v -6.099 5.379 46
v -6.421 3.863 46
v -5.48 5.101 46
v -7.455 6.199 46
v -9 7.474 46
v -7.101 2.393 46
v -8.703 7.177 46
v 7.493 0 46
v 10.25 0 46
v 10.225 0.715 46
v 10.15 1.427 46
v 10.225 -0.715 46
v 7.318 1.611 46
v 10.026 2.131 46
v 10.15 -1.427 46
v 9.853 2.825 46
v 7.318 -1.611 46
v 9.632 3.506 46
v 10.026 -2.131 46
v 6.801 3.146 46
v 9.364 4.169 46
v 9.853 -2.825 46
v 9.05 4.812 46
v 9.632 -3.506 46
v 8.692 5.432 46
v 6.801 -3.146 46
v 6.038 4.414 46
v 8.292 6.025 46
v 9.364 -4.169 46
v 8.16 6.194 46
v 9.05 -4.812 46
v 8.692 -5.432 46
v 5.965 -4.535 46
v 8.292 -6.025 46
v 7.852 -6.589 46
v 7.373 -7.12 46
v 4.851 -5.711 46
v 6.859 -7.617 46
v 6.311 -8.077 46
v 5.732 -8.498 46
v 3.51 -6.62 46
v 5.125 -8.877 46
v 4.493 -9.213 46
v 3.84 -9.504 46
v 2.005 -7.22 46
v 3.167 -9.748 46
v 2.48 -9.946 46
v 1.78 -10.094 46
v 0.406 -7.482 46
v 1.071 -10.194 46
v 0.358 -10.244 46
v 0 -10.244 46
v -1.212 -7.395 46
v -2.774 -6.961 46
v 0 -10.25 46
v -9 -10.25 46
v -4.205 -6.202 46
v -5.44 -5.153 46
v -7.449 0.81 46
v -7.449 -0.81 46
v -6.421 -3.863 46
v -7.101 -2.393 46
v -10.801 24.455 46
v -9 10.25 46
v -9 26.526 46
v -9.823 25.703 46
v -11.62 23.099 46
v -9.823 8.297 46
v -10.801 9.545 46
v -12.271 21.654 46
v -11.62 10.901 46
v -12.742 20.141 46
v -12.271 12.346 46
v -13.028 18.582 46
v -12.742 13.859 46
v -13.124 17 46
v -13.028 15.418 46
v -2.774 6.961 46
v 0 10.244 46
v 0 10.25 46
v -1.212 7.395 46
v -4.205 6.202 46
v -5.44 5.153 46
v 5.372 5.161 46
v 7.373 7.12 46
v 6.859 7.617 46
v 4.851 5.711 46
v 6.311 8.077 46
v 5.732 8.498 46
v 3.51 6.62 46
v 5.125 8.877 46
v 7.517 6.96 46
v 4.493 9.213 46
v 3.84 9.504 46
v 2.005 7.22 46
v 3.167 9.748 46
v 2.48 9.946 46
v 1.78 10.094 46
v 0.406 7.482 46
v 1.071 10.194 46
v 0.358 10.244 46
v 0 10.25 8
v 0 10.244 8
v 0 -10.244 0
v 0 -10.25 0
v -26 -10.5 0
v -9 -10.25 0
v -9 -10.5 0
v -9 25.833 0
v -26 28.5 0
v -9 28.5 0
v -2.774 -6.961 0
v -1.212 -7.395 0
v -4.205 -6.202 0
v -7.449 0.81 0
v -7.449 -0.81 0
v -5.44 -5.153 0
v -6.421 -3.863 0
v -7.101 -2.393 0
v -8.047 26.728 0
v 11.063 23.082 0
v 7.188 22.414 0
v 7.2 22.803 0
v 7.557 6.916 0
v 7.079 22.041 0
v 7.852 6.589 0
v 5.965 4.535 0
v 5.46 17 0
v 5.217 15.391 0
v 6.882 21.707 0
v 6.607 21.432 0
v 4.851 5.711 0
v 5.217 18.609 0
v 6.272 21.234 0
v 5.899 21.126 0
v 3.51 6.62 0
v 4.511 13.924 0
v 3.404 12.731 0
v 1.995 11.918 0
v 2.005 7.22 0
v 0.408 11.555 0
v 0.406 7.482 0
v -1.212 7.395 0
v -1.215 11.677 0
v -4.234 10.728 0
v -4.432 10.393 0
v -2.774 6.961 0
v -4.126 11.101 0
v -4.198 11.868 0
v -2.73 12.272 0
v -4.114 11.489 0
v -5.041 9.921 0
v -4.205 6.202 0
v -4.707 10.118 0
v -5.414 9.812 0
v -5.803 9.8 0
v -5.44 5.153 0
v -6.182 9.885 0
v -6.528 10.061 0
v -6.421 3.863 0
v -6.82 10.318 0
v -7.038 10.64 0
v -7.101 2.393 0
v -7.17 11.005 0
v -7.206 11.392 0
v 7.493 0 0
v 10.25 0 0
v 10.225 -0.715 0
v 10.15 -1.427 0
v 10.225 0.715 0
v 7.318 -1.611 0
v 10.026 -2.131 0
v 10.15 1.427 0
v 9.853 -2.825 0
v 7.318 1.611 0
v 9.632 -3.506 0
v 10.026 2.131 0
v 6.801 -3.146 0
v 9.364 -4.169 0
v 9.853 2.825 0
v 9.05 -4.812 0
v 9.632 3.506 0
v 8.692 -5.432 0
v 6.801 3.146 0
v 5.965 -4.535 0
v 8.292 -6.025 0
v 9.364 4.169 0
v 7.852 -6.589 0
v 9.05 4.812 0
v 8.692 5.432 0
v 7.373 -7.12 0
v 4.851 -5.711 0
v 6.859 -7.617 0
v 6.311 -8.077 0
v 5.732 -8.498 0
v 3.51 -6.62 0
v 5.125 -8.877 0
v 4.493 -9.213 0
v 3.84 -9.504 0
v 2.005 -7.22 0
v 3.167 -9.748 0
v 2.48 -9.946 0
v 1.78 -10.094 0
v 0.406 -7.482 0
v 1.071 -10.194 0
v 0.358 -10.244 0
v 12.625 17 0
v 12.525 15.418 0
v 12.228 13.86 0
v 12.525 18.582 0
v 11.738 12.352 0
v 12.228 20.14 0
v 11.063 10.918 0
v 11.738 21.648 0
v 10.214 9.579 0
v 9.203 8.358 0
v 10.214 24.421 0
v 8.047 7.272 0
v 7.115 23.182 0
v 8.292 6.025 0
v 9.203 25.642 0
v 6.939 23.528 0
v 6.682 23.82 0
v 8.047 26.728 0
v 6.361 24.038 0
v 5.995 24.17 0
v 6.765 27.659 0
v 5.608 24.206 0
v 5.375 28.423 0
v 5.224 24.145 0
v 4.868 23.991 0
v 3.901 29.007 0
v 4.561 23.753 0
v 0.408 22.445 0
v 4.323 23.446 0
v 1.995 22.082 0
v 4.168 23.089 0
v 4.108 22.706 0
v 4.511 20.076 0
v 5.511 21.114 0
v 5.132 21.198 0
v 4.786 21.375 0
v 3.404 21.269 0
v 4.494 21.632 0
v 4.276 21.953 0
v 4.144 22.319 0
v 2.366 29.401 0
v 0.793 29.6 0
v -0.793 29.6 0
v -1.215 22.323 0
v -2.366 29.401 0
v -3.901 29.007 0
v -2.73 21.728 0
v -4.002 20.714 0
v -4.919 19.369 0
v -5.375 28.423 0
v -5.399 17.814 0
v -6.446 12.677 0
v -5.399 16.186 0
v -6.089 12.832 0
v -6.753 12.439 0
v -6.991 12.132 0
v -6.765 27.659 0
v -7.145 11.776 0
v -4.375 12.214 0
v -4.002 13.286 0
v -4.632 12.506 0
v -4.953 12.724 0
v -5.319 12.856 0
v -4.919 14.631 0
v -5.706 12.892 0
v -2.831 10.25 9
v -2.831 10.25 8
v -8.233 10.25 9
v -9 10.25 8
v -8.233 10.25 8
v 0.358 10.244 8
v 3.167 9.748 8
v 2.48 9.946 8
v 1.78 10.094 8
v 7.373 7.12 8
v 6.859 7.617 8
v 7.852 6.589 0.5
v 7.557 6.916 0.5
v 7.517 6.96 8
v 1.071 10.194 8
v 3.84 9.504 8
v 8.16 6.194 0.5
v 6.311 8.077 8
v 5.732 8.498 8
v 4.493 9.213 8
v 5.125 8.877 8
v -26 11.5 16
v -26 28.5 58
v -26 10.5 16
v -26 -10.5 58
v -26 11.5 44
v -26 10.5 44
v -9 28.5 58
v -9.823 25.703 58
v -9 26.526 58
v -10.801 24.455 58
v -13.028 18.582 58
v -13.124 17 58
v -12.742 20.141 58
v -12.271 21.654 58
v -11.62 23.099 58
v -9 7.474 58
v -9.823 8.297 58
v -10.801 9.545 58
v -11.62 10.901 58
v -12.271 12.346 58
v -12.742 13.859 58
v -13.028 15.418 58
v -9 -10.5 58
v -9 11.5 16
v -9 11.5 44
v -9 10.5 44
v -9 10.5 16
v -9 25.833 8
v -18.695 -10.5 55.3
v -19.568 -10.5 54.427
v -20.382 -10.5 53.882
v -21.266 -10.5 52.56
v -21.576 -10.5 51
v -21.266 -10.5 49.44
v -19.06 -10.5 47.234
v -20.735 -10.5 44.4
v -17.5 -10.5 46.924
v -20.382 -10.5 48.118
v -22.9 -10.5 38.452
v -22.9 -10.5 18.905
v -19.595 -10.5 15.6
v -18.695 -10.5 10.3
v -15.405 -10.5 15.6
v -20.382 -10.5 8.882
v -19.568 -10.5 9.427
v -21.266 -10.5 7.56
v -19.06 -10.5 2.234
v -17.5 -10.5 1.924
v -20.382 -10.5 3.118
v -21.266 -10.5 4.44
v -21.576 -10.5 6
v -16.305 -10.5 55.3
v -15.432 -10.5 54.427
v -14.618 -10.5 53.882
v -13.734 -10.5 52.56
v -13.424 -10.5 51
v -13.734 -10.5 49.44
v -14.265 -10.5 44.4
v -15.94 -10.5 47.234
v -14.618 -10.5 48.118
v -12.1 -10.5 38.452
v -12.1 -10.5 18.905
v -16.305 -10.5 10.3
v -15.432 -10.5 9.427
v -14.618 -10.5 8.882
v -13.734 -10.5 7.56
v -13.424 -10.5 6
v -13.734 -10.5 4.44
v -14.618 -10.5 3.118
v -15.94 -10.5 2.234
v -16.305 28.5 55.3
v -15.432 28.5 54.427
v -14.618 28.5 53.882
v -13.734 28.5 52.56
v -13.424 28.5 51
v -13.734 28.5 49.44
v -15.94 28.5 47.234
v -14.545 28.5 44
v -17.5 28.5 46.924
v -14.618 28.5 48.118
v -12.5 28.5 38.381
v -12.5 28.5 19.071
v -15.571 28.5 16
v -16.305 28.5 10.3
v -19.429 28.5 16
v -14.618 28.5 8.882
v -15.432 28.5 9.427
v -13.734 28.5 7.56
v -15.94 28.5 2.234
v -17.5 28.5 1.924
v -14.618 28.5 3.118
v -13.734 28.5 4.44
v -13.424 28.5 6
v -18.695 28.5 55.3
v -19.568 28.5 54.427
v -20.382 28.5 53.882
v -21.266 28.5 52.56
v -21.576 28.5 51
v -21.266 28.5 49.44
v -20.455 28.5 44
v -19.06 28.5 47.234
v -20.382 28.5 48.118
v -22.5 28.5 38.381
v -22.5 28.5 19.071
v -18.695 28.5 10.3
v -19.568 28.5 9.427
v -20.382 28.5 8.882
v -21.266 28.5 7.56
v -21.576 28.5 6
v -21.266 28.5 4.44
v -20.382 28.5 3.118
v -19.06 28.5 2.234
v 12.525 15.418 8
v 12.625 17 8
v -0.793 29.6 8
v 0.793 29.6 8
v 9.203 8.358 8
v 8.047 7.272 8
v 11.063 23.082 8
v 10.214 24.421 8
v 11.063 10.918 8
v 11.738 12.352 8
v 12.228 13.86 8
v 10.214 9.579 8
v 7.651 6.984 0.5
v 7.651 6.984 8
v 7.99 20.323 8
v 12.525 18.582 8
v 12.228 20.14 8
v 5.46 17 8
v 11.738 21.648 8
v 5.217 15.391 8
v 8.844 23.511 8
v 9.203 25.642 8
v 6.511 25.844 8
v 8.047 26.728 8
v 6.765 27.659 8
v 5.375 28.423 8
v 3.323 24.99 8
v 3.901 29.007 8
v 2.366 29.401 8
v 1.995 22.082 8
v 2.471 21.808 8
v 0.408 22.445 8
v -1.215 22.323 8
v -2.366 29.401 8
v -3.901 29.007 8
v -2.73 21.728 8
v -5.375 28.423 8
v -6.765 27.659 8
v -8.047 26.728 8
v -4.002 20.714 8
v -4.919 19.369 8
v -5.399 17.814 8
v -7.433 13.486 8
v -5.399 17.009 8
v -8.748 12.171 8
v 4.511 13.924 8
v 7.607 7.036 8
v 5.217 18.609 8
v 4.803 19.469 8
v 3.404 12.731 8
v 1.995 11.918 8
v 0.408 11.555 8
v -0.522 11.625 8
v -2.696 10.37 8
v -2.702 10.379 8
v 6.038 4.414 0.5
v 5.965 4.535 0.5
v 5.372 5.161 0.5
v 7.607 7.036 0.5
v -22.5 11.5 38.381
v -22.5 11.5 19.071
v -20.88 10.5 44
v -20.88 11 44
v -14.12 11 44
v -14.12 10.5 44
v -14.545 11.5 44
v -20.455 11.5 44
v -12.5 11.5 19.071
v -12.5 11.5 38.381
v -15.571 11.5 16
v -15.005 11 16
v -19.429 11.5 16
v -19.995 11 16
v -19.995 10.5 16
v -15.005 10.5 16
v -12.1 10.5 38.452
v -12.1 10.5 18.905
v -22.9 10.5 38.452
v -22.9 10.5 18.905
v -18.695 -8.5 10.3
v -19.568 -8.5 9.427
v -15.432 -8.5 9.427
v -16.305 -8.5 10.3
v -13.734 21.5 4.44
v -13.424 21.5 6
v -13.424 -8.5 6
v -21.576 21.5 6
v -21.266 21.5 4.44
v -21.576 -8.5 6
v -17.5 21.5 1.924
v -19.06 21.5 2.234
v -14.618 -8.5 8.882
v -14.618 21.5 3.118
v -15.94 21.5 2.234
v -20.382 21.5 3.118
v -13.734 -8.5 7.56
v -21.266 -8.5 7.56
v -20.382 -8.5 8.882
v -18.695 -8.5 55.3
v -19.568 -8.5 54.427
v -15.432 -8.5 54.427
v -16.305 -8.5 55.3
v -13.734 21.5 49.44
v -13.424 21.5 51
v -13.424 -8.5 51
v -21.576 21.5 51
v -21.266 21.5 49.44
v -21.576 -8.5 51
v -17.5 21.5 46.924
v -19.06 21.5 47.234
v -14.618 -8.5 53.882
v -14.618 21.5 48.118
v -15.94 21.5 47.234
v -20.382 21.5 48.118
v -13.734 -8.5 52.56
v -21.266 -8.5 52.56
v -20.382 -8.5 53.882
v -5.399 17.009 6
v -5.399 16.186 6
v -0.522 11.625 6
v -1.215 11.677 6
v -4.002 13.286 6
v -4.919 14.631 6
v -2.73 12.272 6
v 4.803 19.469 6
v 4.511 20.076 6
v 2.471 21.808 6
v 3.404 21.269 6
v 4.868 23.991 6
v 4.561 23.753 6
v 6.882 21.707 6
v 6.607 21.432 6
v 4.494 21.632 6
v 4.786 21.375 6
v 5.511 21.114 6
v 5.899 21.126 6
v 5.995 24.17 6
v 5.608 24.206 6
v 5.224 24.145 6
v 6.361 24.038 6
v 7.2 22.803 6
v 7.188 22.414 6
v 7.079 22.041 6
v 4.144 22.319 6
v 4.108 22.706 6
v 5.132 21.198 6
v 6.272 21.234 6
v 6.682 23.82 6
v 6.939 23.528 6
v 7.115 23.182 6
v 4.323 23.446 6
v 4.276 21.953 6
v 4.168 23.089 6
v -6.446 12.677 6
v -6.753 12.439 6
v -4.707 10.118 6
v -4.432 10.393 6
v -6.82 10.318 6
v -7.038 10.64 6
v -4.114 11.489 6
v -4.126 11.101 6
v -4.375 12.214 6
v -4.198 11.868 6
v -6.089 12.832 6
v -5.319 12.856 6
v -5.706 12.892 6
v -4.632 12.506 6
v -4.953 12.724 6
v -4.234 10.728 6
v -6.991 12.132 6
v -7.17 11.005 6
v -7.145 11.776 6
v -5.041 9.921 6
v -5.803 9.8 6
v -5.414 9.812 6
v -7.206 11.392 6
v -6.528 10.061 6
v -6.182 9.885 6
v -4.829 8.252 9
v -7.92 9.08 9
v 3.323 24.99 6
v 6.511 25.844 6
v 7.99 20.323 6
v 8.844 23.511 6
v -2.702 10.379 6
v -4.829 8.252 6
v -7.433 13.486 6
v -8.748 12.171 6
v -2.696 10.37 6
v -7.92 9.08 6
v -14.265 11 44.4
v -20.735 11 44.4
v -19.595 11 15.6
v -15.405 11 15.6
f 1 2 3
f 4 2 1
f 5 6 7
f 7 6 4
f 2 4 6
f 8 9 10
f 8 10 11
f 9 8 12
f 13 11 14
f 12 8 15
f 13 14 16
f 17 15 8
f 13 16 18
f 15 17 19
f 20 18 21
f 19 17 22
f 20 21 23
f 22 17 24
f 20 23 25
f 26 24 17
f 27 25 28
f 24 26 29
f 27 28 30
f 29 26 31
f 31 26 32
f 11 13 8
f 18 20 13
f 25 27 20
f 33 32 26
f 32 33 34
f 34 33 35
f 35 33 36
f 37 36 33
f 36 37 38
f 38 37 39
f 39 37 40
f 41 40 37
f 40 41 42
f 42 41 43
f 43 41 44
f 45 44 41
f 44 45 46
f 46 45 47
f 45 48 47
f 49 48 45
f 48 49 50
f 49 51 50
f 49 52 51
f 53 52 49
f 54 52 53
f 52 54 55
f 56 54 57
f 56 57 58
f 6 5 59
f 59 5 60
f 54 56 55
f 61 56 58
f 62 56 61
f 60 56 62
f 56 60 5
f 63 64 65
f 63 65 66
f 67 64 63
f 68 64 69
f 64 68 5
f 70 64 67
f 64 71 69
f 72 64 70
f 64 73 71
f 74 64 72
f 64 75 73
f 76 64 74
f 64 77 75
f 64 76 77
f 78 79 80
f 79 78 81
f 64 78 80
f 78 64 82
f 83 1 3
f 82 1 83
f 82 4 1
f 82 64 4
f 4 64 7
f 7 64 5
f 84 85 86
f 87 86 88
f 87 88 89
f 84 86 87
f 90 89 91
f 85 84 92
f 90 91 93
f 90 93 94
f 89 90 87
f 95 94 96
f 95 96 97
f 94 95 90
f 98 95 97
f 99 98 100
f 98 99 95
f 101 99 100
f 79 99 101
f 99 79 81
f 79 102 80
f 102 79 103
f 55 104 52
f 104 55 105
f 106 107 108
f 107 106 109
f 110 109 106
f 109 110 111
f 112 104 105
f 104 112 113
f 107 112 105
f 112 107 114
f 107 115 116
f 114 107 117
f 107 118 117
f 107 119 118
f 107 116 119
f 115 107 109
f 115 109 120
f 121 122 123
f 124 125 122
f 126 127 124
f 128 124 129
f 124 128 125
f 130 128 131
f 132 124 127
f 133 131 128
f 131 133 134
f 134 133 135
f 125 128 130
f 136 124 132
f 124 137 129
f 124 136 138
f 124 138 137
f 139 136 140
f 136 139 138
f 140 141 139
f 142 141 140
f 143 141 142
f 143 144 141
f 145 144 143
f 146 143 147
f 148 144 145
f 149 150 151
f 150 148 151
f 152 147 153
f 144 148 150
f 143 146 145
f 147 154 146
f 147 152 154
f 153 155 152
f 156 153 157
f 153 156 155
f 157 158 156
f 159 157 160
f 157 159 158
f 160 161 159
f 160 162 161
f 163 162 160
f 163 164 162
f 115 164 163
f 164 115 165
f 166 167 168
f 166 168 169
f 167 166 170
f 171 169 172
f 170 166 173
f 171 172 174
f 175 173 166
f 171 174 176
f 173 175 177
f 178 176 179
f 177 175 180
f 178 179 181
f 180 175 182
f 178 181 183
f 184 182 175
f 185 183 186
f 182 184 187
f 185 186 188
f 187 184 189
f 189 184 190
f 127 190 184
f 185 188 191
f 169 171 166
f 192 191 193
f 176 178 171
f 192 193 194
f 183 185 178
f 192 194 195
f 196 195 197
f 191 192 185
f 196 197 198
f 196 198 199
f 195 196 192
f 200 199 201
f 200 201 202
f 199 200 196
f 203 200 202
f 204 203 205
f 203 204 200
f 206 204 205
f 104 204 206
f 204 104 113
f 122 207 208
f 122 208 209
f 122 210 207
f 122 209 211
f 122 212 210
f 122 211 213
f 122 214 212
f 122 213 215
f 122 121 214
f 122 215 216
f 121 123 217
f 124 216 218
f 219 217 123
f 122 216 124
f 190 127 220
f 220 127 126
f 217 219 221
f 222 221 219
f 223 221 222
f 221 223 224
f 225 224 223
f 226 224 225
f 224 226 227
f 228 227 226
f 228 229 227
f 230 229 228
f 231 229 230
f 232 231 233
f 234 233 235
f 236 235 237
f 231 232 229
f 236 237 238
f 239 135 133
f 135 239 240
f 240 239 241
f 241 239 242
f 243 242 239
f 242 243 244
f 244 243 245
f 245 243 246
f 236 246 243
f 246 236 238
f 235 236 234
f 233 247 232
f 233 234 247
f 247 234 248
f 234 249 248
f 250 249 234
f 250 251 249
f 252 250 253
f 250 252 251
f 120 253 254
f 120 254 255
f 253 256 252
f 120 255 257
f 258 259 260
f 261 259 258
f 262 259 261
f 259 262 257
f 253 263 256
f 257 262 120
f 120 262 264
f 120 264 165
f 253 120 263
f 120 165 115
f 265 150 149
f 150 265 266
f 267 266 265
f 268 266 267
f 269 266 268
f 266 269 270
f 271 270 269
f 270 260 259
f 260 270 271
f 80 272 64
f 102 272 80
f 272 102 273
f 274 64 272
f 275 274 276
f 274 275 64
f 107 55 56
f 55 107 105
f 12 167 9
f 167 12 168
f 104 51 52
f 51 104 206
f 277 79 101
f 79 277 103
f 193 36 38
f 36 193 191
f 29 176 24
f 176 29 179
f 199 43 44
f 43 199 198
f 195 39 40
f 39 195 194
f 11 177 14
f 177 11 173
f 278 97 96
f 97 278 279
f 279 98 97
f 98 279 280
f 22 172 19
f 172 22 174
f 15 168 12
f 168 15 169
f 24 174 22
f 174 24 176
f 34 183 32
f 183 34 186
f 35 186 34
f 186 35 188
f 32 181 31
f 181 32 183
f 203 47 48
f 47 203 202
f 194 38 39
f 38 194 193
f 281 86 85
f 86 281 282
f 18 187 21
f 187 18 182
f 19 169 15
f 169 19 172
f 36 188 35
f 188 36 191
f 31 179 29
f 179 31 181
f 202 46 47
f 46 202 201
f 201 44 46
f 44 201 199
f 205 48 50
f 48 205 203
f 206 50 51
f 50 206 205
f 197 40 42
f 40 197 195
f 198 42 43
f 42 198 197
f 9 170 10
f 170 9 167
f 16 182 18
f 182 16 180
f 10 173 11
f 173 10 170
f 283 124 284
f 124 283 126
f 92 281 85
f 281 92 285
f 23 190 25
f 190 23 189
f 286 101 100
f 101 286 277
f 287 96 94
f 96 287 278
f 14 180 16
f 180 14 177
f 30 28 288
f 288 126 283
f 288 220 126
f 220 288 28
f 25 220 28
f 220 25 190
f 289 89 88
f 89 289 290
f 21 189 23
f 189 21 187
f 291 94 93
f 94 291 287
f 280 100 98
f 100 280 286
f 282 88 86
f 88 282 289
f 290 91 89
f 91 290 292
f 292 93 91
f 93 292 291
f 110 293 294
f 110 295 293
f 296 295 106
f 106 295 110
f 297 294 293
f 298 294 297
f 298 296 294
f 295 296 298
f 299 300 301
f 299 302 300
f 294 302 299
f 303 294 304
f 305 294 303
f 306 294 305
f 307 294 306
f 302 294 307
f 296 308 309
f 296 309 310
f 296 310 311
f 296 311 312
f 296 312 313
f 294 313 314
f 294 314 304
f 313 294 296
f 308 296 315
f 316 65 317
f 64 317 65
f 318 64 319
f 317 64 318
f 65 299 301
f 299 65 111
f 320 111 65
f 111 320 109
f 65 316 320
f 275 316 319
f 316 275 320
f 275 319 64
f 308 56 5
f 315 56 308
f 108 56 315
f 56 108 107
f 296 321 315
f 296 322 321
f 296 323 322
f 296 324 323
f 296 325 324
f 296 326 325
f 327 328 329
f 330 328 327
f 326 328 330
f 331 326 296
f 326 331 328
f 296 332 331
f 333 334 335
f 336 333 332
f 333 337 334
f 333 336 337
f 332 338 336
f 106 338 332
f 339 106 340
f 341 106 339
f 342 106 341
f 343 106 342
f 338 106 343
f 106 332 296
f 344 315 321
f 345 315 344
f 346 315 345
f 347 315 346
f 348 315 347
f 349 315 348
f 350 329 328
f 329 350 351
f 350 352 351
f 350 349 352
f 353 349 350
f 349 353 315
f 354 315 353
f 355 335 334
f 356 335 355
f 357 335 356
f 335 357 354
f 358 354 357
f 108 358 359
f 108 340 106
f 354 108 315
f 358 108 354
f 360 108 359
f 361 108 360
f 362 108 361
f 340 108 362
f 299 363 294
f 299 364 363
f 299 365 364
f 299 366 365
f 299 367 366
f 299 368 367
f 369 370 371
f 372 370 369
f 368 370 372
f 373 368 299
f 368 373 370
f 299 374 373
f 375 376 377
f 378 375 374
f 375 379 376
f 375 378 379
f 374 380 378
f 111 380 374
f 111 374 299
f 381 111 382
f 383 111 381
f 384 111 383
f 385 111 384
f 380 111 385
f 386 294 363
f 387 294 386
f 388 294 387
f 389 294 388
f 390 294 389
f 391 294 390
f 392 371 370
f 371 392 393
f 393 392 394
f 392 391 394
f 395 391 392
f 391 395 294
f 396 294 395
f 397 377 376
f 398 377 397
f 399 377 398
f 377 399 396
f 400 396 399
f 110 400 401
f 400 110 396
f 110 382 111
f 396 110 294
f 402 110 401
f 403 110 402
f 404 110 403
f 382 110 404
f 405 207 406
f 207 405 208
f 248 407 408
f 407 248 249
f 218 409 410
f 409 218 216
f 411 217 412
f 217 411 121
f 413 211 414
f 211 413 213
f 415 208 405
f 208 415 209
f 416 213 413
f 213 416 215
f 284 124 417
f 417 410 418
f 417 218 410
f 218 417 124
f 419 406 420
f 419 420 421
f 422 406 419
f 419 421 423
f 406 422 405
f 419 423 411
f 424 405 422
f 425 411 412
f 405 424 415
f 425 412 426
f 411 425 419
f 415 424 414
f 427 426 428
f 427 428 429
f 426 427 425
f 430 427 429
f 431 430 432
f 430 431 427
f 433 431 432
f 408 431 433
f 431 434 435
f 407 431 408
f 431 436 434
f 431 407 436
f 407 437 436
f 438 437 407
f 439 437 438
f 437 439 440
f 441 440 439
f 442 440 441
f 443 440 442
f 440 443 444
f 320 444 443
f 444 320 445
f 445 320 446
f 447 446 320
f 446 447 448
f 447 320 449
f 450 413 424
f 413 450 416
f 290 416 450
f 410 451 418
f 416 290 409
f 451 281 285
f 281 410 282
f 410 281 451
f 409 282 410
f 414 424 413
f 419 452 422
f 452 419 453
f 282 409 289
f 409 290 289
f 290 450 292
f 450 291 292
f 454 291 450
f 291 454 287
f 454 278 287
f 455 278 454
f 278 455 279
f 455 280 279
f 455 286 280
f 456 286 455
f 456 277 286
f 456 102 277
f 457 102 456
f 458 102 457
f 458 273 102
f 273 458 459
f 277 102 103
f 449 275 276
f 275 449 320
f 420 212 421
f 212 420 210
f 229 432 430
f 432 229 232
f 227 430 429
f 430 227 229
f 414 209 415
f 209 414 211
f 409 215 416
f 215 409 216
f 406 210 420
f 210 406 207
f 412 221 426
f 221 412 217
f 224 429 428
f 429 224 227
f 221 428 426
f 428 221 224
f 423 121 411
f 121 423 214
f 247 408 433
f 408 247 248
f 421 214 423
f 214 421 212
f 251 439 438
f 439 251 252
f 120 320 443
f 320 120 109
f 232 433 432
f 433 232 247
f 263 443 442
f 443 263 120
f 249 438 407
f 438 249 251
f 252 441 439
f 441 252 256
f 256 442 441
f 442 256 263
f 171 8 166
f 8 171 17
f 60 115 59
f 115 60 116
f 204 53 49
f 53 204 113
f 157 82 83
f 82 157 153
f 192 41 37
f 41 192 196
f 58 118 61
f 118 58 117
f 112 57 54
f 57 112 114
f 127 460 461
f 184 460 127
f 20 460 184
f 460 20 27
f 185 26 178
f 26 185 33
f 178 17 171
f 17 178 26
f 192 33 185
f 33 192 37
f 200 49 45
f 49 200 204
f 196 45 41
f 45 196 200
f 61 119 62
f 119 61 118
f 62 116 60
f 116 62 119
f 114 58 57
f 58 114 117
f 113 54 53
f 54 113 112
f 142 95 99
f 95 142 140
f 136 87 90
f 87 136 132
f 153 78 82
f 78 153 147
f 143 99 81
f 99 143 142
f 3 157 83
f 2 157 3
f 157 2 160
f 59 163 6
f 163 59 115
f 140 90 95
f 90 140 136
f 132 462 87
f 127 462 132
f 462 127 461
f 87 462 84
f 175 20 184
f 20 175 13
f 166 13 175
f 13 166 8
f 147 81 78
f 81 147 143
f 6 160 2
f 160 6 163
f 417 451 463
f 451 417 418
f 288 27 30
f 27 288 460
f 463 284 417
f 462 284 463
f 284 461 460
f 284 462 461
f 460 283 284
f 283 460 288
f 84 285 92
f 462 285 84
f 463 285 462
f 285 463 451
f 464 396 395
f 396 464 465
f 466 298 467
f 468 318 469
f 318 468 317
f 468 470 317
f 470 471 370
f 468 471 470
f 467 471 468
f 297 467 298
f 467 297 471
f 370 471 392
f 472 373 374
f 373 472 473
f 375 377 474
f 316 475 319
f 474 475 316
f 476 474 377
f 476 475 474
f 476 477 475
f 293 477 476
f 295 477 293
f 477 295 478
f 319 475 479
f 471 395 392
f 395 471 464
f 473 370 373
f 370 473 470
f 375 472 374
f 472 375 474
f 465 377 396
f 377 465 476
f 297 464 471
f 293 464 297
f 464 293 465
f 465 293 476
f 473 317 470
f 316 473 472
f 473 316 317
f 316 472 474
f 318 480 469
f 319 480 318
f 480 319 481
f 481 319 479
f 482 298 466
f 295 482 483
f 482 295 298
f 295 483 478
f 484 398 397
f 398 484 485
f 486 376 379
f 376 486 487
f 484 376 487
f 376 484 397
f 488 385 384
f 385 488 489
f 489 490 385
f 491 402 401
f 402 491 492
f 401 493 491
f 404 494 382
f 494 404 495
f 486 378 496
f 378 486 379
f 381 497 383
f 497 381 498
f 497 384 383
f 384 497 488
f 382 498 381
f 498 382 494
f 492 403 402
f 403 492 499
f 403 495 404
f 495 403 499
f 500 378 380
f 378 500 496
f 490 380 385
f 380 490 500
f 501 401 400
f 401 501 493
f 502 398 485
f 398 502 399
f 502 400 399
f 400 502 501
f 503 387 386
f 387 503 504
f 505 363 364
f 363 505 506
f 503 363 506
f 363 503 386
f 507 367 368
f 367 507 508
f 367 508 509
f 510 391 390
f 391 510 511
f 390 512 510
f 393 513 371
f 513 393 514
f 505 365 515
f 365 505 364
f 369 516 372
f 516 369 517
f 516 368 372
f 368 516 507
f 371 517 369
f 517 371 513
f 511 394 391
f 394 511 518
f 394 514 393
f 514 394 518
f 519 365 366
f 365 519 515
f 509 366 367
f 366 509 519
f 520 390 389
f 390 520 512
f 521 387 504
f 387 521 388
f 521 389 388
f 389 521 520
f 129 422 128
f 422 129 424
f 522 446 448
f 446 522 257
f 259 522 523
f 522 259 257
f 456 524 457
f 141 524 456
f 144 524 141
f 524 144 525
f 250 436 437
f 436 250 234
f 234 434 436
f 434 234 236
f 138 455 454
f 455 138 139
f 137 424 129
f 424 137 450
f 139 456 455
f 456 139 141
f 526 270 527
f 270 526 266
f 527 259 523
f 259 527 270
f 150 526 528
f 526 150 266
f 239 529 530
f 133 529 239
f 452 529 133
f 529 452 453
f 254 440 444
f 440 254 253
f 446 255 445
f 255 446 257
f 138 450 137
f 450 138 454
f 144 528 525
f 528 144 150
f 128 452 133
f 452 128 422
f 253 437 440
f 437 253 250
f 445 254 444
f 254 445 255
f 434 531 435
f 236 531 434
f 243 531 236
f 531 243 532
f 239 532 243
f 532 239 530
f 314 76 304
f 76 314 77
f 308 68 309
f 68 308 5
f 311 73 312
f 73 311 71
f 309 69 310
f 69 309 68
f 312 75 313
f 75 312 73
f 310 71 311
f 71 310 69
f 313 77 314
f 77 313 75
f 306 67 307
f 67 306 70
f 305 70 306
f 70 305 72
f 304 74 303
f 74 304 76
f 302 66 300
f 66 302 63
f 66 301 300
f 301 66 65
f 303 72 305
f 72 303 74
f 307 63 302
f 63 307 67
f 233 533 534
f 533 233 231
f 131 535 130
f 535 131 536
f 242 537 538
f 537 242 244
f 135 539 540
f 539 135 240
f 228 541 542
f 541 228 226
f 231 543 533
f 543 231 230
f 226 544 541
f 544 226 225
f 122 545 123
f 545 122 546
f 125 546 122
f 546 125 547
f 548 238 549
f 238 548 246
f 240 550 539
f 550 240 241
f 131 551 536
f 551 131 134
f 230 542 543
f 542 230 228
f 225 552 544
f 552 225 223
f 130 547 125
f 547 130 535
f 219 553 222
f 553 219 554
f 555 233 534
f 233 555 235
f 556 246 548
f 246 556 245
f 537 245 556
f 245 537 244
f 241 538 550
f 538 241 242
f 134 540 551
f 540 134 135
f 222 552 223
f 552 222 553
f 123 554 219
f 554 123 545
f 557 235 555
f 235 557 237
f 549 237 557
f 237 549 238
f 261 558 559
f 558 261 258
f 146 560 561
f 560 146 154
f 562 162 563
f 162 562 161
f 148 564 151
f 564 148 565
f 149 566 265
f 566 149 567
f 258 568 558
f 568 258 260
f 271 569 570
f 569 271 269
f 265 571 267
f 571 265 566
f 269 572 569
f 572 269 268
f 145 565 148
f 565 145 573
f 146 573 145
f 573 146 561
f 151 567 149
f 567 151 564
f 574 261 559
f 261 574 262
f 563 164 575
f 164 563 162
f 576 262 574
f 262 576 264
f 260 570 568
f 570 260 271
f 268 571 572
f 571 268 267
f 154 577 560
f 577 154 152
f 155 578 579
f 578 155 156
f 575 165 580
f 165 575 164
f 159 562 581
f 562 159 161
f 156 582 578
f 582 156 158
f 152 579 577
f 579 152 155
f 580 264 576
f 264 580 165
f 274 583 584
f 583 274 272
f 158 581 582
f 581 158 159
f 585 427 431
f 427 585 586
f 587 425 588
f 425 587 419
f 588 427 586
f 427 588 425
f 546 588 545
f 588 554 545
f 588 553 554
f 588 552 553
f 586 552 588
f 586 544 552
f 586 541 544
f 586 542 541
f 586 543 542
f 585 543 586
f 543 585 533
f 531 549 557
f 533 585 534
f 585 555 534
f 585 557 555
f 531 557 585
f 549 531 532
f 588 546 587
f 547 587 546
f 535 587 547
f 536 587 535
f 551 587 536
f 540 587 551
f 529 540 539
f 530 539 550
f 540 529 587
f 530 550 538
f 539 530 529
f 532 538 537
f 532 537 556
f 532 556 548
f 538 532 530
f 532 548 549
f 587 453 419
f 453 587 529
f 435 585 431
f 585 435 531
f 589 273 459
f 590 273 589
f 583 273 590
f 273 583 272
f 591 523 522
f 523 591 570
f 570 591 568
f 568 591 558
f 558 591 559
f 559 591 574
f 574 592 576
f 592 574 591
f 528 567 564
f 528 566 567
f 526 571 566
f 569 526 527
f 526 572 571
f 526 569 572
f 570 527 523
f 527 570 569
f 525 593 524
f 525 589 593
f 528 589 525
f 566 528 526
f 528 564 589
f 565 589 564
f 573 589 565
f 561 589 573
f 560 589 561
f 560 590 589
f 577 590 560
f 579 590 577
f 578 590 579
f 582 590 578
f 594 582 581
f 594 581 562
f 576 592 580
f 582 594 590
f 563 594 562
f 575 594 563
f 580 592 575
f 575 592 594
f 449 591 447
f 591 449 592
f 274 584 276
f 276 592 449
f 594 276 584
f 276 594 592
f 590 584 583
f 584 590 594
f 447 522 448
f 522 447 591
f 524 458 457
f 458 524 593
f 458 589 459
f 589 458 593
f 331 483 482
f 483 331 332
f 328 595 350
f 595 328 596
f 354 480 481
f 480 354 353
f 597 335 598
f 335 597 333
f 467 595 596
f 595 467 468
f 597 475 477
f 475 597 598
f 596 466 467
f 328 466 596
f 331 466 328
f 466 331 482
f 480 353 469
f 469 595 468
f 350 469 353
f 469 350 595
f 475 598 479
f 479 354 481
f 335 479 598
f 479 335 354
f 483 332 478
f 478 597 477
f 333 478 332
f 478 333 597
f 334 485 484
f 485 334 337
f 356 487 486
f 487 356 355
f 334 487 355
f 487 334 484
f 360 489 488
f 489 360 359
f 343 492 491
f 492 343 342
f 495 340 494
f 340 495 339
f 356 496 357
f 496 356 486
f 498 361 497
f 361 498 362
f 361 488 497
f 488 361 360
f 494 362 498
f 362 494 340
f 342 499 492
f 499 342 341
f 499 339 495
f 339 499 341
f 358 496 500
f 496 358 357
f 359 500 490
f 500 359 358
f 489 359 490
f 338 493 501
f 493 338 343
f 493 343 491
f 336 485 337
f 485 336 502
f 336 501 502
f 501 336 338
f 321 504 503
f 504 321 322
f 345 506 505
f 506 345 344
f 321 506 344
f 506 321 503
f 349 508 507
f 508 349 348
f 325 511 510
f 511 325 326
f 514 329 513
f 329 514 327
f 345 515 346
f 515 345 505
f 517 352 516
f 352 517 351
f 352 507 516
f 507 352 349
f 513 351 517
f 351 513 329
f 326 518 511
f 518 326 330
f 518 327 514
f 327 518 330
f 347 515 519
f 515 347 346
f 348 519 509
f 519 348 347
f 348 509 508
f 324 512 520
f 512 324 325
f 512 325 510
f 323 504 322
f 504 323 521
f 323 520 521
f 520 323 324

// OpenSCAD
// file: polyholes.scad
// MK2Clone r2
// based on Mendel90
//
// GNU GPL v2
// nop.head@gmail.com
// hydraraptor.blogspot.com
//
// See http://hydraraptor.blogspot.com/2011/02/polyholes.html
//
function sides(r) = max(round(4 *r),3);
function correctedRadius(r,n) = 0.1 + r / cos(180 / n);
function correctedDiameter(d) = 0.2 + d / cos(180 / sides(d / 2));

module polyCircle(r, center = false) {
    n = sides(r);
    circle(r = correctedRadius(r,n), $fn = n, center = center);
}

module poly_circle(r, center = false) {
	polyCircle(r, center);
}

module polyCylinder(r, h, center = false) {
    n = sides(r);
    cylinder(h = h, r = correctedRadius(r,n), $fn = n, center = center);
}

module poly_cylinder(r, h, center = false) {
	polyCylinder(r,h,center);
}

module polydCylinder(r, center = false) {
    n = sides(r);
    r = correctedRadius(r,n);
    cylinder(h = h, r = r, $fn = n, center = center);
    translate([0, -r, 0])
        cube([r, 2 * r, h]);
}

module poly_d_cylinder(r, center = false) {
	polydCylinder(r,center);
}
// file: bearing.scad
// PRUSA iteration3
// Bearing holders
// GNU GPL v3
// Josef Průša <iam@josefprusa.cz> and contributors
// http://www.reprap.org/wiki/Prusa_Mendel
// http://prusamendel.org

use <polyholes.scad>

bearing_diameter = 14.5;

module horizontal_bearing_base(bearings=1){
 translate(v=[0,0,6]) cube(size = [24,8+bearings*25,12], center = true);	
}
module horizontal_bearing_holes(bearings=1){
 cutter_lenght = 10+bearings*25;
 one_holder_lenght = 8+25;
 holder_lenght = 8+bearings*25;
 
 // Main bearing cut
 difference(){
  translate(v=[0,0,12]) rotate(a=[90,0,0]) translate(v=[0,0,-cutter_lenght/2]) cylinder(h = cutter_lenght, r=(bearing_diameter/2)+0.2, $fn=50);
  // Bearing retainers
  translate(v=[0,1-holder_lenght/2,3]) cube(size = [24,6,8], center = true);
  translate(v=[0,-1+holder_lenght/2,3]) cube(size = [24,6,8], center = true);
 }
 
 // Ziptie cutouts
 ziptie_cut_ofset = 0;
 for ( i = [0 : bearings-1] ){
  // For easier positioning I move them by half of one 
  // bearing holder then add each bearign lenght and then center again
  translate(v=[0,-holder_lenght/2,0]) translate(v=[0,one_holder_lenght/2+i*25,0]) difference(){
   union(){
    translate(v=[0,2-8.5,12]) rotate(a=[90,0,0]) translate(v=[0,0,0]) cylinder(h = 4, r=11.5, $fn=50);
    translate(v=[0,2+8.5,12]) rotate(a=[90,0,0]) translate(v=[0,0,0]) cylinder(h = 4, r=11.5, $fn=50);
   }
   translate(v=[0,12,12]) rotate(a=[90,0,0]) translate(v=[0,0,0]) cylinder(h = 24, r=9, $fn=50);
  }
 }
 
}

module horizontal_bearing_test(){
 difference(){
  horizontal_bearing_base(1);
  horizontal_bearing_holes(1);
 }
 translate(v=[30,0,0]) difference(){
  horizontal_bearing_base(2);
  #horizontal_bearing_holes(2);
 }
 translate(v=[60,0,0]) difference(){
  horizontal_bearing_base(3);
  horizontal_bearing_holes(3);
 }
}



thinwall = 3;
bearing_size = bearing_diameter + 2 * thinwall;

module vertical_bearing_base(){
 translate(v=[-2-bearing_size/4,0,23]) cube(size = [4+bearing_size/2,bearing_size,46], center = true);
 cylinder(h = 46, r=bearing_size/2, $fn = 90);
}

module vertical_bearing_holes(){
  translate(v=[0,0,-1]) poly_cylinder(h = 62, r=(bearing_diameter/2)+0.1);
  rotate(a=[0,0,-40]) translate(v=[bearing_diameter/2-2.9,-0.5,0.5]) cube(size = [thinwall*2,1,62]);

}

//difference(){
vertical_bearing_base();
vertical_bearing_holes();
//}
//horizontal_bearing_test();
//horizontal_bearing_base(1);
//horizontal_bearing_holes(1);
// file: x-end.scad
// PRUSA iteration3
// X end prototype
// GNU GPL v3
// Josef Průša <iam@josefprusa.cz> and contributors
// http://www.reprap.org/wiki/Prusa_Mendel
// http://prusamendel.org

use <bearing.scad>
use <polyholes.scad>

function rodX_distance() = 45;

//function rodZ_distance() = 21;
function rodZ_distance() = 17; 

module x_end_base(){
  // Main block
  height = 58;
  translate(v=[-15-2.5,-9,height/2]) cube(size = [17,39,height], center = true);
  // Bearing holder
   vertical_bearing_base();	
  //Nut trap
   // Cylinder
     translate(v=[0,-rodZ_distance(),0]) poly_cylinder(h = 8, r=12.5, $fn=25);
   // Hexagon
   //translate(v=[0,-21,0]) rotate([0,0,30]) cylinder(h = 8, r=8, $fn = 6);
  //#translate(v=[-6,-10.6,10]) rotate([0,0,48.2]) cube(size = [10,5,1], center = true);
}
           
module x_end_belt_hole(size=46, spacer=0 ){
  difference(){
  	cube(size = [10-spacer,size,28-spacer], center = true);
  	// Nice edges
  	translate(v=[-5, 0, +23]) rotate([0,20,0]) cube(size = [10+spacer,size+1,28], center = true);
    translate(v=[ 5, 0, +23]) rotate([0,-20,0]) cube(size = [10+spacer,size+1,28], center = true);
    translate(v=[ 0, 0, -23]) rotate([0,45,0]) cube(size = [10+spacer,size+1,28], center = true);
  	translate(v=[ 0, 0, -23]) rotate([0,-45,0]) cube(size = [10+spacer,size+1,28], center = true);   
  }
}
           
module x_end_holes(){
 vertical_bearing_holes();
 // Belt hole
  translate(v=[-1,0,0]){
    // Stress relief
    translate(v=[-5.5-10+1.5-2.5,-10-1,30]) cube(size = [18,1,28], center = true);
    translate(v=[-5.5-10+1.5-2.5,-10,30]) x_end_belt_hole();
  }

// Bottom pushfit rod
translate(v=[-15-2.5,-41.5,6]) rotate(a=[-90,0,0]) pushfit_rod(7.8,50);
// Top pushfit rod
translate(v=[-15-2.5,-41.5,rodX_distance()+6]) rotate(a=[-90,0,0]) pushfit_rod(7.8,50);

// TR Nut trap
   // Hole for the nut
    translate(v=[0,-rodZ_distance(), -1]) poly_cylinder(h = 9.01, r = 5.3, $fn = 25);
    translate(v=[0,-rodZ_distance(), 46]) poly_cylinder(h = 12.01, r = 13, $fn = 40);

// Screw holes for TR nut
    translate(v=[0,-rodZ_distance(), 0]) rotate([0, 0, -135]) translate([0, 8, -1]) cylinder(h = 10, r = 1.55, $fn=25);
    translate(v=[0,-rodZ_distance(), 0]) rotate([0, 0, -135]) translate([0, -8, -1]) cylinder(h = 10, r = 1.55, $fn=25);

// Nut traps for TR nut screws
    translate(v=[0,-rodZ_distance(), 0]) rotate([0, 0, -135]) translate([0, 8, 6]) rotate([0, 0, 0])cylinder(h = 3, r = 3.3, $fn=6);

    translate(v=[0,-rodZ_distance(), 0]) rotate([0, 0, -135]) translate([0, -8, 6]) rotate([0, 0, 30])cylinder(h = 3, r = 3.2, $fn=6);
    translate([-5,-17.7,6]) rotate([0,0,30]) cube([5,5,3]);
    translate([-0,-17.7,6]) rotate([0,0,60]) cube([5,6,3]);
}


// Final prototype
module x_end_plain(){
 difference(){
  x_end_base();
  x_end_holes();
 }
}

x_end_plain();


module pushfit_rod(diameter,length){
 poly_cylinder(h = length, r=diameter/2);
 difference(){
 	translate(v=[0,-diameter/2.85,length/2]) rotate([0,0,45]) cube(size = [diameter/2,diameter/2,length], center = true);
 	translate(v=[0,-diameter/4-diameter/2-0.4,length/2]) rotate([0,0,0]) cube(size = [diameter,diameter/2,length], center = true);
 }
 //translate(v=[0,-diameter/2-2,length/2]) cube(size = [diameter,1,length], center = true);
}
// main file
// PRUSA iteration3
// X end idler
// GNU GPL v3
// Josef Průša <iam@josefprusa.cz> and contributors
// http://www.reprap.org/wiki/Prusa_Mendel
// http://prusamendel.org

use <x-end.scad>



module x_end_idler_holes(){
    x_end_holes();
    //translate([0,3.5,0]){
    //translate(v=[0,-22,30.25]) rotate(a=[0,-90,0]) cylinder(h = 80, r=2.2, $fn=30);
    //translate(v=[1.5,-22,30.25]) rotate(a=[0,-90,0]) cylinder(h = 10, r=3.6, $fn=30);
    //translate(v=[-21.5,-22,30.25]) rotate(a=[0,-90,0]) rotate(a=[0,0,30]) cylinder(h = 80, r=3.6, $fn=6);
    translate(v=[-5.5-10+0.5-2.5,0,30]) x_end_belt_hole(22, -0.8);    
// }
}


module waste_pocket(){
 // waste pocket
    translate([-15,-1,6]) rotate([90,0,0]) cylinder( h=5, r=5.5, $fn=30);     
    translate([-15,-1,51]) rotate([90,0,0]) cylinder( h=5, r=5.5, $fn=30);    
    translate([-15,-5.9,6]) rotate([90,0,0]) cylinder( h=3, r1=5.5, r2=4.3, $fn=30);     
    translate([-15,-5.9,51]) rotate([90,0,0]) cylinder( h=3, r=5.5, r2=4.3, $fn=30);      

    
    //M3 thread
    translate([-15,8.5,6]) rotate([90,0,0]) cylinder( h=12, r=1.4, $fn=30); 
    translate([-15,8.5,51]) rotate([90,0,0]) cylinder( h=12, r=1.4, $fn=30); 

    //M3 heads
    translate([-15,11.5,6]) rotate([90,0,0]) cylinder( h=4, r=2.9, $fn=30); 
    translate([-15,11.5,51]) rotate([90,0,0]) cylinder( h=4, r=2.9, $fn=30); 

    //M3 nut traps
    translate([-17.9,0.5,52-3-1.6]) cube([5.8,3.1,20]);
    translate([-17.9,0.5,-10+1.5+1.6]) cube([5.8,3.1,16]);
}


module x_end_idler_base(){
    union(){
        difference(){
            x_end_base();
            x_end_idler_holes();
        }
        //translate([-15,8.5,6]) rotate([90,0,0]) cylinder( h=11, r=6, $fn=30);
        //translate([-15,8.5,51]) rotate([90,0,0]) cylinder( h=11, r=6, $fn=30);
    }
}


module x_end_idler(){
    mirror([0,1,0]) 
    difference(){
        x_end_idler_base();
        //waste_pocket();
        // Bottom pushfit rod
        translate(v=[-15-2.5,-21.5,6]) rotate(a=[-90,0,0]) pushfit_rod(7.8,50);
        // Top pushfit rod
        translate(v=[-15-2.5,-21.5, rodX_distance()+6]) rotate(a=[-90,0,0]) pushfit_rod(7.8,50);

    }
    
}

//difference(){
x_end_idler();
//translate([-15,-50,0])   cube([100,100,100]);
//}
